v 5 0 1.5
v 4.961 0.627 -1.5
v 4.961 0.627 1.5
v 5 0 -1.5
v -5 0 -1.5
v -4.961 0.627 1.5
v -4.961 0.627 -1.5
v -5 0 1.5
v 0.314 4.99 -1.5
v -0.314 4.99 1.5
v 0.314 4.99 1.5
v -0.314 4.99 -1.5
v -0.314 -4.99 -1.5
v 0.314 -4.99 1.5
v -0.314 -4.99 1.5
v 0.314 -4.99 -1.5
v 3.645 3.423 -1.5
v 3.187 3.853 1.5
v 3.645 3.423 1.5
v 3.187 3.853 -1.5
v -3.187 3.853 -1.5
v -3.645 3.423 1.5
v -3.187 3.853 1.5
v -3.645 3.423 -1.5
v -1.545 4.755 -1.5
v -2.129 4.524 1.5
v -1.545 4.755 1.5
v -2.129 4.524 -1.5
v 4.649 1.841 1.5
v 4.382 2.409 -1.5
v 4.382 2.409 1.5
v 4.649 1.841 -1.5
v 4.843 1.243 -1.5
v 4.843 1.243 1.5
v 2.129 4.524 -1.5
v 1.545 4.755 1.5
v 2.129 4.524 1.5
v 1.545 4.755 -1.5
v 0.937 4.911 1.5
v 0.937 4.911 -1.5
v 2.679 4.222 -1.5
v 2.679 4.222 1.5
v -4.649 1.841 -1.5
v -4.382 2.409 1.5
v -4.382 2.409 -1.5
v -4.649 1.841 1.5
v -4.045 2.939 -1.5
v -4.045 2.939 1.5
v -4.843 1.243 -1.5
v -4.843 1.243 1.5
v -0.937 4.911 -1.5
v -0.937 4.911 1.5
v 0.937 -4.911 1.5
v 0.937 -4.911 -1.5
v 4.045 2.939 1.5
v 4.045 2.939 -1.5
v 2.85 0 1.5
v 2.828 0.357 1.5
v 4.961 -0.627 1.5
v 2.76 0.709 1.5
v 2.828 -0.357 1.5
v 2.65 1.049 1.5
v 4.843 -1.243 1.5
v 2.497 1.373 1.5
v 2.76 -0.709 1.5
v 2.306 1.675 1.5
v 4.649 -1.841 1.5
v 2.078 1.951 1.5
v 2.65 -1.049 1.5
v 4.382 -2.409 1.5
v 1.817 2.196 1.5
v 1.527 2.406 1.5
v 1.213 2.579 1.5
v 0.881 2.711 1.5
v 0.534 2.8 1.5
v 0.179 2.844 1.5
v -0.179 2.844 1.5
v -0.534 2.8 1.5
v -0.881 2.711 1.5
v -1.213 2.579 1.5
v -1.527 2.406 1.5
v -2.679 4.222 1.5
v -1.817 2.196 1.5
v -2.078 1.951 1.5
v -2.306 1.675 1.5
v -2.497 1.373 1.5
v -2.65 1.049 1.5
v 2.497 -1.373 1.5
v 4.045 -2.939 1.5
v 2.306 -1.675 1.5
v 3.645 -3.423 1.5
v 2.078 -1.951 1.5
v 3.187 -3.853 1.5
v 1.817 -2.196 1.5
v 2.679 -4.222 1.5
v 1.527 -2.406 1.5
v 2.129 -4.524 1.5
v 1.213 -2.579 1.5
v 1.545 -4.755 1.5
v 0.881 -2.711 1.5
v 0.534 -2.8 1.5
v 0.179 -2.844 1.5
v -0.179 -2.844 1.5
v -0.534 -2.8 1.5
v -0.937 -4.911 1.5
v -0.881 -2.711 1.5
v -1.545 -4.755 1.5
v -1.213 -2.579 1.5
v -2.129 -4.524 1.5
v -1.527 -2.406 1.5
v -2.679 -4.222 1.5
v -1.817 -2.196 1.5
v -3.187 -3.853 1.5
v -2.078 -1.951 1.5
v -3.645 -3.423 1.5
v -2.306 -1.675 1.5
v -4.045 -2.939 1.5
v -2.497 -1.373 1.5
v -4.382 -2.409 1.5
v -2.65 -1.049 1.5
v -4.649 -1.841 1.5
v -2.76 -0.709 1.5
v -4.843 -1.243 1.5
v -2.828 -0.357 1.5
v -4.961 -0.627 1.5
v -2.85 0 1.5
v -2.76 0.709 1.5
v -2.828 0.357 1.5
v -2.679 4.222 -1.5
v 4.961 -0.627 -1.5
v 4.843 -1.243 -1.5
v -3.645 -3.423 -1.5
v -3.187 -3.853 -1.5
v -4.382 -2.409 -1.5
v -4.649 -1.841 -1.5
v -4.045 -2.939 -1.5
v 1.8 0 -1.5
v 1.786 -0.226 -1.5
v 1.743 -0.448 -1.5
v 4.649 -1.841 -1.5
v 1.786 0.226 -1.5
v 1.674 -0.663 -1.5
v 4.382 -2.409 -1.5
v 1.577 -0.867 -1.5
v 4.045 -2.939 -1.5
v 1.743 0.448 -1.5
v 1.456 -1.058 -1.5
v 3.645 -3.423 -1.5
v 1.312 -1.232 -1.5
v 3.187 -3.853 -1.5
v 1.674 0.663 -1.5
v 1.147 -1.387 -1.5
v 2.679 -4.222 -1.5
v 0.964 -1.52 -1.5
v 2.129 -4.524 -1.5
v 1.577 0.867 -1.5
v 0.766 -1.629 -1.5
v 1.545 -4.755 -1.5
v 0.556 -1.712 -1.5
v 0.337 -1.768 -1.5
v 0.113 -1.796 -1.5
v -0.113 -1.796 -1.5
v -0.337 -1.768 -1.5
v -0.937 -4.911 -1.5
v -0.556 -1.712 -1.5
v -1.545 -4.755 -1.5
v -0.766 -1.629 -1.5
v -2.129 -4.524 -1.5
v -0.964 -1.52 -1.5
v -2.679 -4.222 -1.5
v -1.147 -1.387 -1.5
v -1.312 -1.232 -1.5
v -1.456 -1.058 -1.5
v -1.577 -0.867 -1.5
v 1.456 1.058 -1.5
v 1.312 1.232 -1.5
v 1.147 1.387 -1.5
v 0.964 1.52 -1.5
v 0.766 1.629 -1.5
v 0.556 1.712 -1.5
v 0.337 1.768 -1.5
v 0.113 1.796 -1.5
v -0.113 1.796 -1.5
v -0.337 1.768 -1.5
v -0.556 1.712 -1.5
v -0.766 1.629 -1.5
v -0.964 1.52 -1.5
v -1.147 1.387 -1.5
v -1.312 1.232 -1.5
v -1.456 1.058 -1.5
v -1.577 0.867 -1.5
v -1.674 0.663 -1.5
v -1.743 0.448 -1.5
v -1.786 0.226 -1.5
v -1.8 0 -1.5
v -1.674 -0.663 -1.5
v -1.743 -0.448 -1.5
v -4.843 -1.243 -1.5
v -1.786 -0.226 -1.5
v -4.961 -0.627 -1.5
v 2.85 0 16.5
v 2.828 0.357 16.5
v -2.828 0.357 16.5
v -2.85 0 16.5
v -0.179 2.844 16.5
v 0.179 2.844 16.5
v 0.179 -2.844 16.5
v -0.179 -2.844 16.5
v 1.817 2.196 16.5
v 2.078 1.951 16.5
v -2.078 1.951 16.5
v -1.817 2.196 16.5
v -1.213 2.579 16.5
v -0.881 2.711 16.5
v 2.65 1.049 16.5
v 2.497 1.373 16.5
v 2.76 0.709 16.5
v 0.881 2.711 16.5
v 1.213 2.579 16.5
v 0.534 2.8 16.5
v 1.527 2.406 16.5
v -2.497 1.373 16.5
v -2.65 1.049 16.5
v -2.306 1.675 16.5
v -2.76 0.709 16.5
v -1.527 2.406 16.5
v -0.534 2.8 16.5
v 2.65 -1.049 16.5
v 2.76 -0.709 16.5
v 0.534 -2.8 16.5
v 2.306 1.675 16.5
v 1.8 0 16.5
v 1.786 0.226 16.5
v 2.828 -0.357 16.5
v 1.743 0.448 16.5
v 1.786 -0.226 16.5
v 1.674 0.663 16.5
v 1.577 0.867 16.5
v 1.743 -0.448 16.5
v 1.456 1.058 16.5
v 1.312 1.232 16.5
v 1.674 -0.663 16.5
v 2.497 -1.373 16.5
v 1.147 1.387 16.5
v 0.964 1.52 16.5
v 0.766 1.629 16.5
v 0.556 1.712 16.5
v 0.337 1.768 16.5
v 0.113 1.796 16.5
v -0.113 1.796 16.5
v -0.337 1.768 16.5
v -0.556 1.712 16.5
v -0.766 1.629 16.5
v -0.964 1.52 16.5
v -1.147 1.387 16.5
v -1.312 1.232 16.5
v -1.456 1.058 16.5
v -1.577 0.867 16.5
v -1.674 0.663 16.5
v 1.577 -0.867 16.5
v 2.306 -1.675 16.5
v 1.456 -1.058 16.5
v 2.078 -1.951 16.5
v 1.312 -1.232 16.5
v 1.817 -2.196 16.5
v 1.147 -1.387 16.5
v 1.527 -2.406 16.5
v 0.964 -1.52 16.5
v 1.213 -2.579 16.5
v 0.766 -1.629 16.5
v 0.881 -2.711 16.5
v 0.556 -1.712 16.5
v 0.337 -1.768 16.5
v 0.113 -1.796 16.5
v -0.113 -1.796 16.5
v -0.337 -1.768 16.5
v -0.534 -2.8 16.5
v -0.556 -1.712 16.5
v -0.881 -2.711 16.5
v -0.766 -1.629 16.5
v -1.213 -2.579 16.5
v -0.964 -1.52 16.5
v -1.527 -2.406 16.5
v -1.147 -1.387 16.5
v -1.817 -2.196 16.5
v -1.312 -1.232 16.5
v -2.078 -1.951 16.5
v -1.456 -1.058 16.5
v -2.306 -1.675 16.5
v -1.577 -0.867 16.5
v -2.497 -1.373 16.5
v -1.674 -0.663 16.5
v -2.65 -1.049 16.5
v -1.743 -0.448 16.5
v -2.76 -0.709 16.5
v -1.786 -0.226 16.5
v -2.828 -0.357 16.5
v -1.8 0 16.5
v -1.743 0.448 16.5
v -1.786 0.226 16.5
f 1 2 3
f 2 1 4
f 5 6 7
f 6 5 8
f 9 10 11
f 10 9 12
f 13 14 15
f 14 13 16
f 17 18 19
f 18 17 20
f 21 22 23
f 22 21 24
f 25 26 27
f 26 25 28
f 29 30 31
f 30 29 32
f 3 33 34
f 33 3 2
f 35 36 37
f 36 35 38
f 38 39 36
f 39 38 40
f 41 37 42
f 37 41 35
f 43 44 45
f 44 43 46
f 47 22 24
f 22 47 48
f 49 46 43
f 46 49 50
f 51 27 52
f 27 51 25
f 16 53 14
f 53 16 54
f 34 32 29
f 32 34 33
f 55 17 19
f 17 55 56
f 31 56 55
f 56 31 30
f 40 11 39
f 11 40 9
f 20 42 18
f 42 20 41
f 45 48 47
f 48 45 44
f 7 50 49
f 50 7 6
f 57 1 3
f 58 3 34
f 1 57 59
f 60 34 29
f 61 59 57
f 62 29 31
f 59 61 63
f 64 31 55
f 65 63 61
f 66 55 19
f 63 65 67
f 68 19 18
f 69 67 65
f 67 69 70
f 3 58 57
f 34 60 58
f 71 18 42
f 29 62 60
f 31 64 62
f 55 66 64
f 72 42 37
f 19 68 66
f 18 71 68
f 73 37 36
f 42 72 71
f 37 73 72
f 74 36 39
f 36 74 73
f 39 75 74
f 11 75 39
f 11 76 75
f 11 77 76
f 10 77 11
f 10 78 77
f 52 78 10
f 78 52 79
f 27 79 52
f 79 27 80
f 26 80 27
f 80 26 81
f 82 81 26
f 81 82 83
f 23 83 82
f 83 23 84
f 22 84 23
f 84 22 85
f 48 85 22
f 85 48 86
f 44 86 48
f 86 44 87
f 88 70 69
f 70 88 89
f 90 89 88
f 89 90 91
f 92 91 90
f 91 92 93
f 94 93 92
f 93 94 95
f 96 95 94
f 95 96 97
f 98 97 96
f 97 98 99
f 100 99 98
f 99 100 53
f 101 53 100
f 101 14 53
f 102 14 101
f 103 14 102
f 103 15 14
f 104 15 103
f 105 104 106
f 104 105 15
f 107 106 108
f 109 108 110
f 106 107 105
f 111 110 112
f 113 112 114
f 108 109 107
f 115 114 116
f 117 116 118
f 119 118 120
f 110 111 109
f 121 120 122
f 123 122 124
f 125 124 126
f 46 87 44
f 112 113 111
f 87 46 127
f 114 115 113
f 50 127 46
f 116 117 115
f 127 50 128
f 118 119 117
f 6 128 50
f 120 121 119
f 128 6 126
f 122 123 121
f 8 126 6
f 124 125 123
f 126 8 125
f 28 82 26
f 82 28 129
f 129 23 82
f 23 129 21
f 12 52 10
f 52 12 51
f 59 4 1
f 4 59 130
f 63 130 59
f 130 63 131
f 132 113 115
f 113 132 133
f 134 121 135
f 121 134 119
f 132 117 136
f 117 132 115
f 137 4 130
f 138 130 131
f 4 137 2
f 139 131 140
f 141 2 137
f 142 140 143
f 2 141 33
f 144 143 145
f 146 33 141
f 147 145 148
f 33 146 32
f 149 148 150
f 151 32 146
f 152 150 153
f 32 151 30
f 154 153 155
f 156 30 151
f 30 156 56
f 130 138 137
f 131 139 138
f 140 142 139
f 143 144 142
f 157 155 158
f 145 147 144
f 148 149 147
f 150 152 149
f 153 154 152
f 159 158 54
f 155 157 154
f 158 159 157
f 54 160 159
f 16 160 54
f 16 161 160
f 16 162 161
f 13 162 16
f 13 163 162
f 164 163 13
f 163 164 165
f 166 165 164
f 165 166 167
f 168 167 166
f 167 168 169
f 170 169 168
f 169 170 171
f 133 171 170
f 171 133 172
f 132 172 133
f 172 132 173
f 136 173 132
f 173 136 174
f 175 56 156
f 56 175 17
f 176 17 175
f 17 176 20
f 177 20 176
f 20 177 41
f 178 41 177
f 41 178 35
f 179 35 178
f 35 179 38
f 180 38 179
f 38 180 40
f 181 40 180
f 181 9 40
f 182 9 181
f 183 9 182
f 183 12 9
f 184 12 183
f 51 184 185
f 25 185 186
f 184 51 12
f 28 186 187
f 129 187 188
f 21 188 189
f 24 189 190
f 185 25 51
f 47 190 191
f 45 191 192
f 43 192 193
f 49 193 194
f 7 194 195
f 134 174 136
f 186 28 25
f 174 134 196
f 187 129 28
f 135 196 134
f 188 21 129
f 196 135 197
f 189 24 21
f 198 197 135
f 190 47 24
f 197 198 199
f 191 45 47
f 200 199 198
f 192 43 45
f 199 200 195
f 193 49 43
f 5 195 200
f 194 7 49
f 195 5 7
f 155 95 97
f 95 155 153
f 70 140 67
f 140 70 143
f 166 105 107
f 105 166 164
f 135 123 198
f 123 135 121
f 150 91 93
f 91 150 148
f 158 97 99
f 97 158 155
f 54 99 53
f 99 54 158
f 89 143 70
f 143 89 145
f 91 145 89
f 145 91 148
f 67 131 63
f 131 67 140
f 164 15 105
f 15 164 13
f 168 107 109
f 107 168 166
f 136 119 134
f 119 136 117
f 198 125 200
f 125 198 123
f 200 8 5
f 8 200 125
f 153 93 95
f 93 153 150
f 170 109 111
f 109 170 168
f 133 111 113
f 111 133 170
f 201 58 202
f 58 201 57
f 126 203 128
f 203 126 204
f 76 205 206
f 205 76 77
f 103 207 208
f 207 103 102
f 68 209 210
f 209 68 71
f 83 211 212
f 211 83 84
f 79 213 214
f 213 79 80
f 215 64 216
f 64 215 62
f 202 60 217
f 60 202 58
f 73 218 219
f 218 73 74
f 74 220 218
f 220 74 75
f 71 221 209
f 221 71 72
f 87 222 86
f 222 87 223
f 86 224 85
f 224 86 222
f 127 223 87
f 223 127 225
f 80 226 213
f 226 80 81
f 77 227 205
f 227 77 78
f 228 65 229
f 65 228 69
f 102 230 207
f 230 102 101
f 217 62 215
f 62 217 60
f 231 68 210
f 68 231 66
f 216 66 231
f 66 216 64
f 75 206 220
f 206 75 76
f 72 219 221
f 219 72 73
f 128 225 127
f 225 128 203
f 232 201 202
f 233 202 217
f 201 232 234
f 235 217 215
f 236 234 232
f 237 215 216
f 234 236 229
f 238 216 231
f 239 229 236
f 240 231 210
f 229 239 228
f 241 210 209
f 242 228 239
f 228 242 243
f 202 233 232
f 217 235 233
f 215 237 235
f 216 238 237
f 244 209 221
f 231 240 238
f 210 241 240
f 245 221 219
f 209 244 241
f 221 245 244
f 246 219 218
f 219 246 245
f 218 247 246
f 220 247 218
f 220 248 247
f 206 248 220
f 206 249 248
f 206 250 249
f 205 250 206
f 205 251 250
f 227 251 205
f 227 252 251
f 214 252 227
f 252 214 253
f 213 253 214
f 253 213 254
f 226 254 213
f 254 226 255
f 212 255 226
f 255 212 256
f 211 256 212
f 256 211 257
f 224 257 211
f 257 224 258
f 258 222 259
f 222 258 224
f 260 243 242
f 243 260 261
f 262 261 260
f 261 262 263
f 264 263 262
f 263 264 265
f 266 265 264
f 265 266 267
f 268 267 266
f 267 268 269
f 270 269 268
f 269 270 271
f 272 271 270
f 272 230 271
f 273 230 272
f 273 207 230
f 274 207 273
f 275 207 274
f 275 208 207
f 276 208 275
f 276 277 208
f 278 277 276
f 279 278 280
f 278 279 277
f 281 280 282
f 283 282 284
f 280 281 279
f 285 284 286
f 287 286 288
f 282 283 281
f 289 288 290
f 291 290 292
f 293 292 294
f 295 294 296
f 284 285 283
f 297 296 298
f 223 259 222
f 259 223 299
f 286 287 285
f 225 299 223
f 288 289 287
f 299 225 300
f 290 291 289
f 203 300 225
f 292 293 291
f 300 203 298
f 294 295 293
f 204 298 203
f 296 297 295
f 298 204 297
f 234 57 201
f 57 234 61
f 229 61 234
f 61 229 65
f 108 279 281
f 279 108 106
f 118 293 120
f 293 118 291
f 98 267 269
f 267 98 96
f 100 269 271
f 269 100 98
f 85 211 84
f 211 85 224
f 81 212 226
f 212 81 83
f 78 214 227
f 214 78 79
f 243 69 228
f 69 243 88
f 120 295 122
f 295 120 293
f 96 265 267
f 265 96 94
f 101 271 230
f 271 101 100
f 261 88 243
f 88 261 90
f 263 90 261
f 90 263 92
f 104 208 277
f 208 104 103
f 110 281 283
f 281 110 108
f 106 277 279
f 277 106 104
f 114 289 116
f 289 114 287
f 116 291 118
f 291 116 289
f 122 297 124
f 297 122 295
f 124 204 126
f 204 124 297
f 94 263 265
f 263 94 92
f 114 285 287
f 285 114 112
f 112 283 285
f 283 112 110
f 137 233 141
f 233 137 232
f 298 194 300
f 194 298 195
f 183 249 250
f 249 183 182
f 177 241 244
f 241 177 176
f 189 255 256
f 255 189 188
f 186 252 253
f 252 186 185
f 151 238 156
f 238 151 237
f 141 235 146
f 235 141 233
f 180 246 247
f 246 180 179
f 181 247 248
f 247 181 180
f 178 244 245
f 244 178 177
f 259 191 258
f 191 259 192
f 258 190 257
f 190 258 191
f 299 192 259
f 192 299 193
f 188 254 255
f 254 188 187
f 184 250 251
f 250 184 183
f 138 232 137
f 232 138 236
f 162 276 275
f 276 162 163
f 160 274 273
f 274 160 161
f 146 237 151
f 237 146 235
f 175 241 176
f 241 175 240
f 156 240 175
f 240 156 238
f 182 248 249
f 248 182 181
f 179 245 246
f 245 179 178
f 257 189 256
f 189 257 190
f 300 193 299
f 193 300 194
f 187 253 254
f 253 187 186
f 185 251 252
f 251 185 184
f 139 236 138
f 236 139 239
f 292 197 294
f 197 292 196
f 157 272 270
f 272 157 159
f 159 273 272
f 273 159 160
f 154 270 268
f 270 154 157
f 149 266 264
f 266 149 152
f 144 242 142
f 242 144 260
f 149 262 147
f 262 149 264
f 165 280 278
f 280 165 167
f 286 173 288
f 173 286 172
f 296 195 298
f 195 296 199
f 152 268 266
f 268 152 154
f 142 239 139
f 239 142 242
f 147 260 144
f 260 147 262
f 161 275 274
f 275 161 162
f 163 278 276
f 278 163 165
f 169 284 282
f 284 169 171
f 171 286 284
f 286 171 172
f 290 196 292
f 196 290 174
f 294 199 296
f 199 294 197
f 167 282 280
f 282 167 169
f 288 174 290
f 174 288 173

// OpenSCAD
$fn = 50;


difference() {
	union() {
		translate(v = [0, 0, -1.5000000000]) {
			rotate(a = [0, 0, 0]) {
				cylinder(h = 3, r = 5.0000000000);
			}
		}
		translate(v = [0, 0, -1.5000000000]) {
			rotate(a = [0, 0, 0]) {
				cylinder(h = 18, r = 2.8500000000);
			}
		}
	}
	union() {
		translate(v = [0, 0, -125.0000000000]) {
			rotate(a = [0, 0, 0]) {
				cylinder(h = 250, r = 1.8000000000);
			}
		}
	}
}
